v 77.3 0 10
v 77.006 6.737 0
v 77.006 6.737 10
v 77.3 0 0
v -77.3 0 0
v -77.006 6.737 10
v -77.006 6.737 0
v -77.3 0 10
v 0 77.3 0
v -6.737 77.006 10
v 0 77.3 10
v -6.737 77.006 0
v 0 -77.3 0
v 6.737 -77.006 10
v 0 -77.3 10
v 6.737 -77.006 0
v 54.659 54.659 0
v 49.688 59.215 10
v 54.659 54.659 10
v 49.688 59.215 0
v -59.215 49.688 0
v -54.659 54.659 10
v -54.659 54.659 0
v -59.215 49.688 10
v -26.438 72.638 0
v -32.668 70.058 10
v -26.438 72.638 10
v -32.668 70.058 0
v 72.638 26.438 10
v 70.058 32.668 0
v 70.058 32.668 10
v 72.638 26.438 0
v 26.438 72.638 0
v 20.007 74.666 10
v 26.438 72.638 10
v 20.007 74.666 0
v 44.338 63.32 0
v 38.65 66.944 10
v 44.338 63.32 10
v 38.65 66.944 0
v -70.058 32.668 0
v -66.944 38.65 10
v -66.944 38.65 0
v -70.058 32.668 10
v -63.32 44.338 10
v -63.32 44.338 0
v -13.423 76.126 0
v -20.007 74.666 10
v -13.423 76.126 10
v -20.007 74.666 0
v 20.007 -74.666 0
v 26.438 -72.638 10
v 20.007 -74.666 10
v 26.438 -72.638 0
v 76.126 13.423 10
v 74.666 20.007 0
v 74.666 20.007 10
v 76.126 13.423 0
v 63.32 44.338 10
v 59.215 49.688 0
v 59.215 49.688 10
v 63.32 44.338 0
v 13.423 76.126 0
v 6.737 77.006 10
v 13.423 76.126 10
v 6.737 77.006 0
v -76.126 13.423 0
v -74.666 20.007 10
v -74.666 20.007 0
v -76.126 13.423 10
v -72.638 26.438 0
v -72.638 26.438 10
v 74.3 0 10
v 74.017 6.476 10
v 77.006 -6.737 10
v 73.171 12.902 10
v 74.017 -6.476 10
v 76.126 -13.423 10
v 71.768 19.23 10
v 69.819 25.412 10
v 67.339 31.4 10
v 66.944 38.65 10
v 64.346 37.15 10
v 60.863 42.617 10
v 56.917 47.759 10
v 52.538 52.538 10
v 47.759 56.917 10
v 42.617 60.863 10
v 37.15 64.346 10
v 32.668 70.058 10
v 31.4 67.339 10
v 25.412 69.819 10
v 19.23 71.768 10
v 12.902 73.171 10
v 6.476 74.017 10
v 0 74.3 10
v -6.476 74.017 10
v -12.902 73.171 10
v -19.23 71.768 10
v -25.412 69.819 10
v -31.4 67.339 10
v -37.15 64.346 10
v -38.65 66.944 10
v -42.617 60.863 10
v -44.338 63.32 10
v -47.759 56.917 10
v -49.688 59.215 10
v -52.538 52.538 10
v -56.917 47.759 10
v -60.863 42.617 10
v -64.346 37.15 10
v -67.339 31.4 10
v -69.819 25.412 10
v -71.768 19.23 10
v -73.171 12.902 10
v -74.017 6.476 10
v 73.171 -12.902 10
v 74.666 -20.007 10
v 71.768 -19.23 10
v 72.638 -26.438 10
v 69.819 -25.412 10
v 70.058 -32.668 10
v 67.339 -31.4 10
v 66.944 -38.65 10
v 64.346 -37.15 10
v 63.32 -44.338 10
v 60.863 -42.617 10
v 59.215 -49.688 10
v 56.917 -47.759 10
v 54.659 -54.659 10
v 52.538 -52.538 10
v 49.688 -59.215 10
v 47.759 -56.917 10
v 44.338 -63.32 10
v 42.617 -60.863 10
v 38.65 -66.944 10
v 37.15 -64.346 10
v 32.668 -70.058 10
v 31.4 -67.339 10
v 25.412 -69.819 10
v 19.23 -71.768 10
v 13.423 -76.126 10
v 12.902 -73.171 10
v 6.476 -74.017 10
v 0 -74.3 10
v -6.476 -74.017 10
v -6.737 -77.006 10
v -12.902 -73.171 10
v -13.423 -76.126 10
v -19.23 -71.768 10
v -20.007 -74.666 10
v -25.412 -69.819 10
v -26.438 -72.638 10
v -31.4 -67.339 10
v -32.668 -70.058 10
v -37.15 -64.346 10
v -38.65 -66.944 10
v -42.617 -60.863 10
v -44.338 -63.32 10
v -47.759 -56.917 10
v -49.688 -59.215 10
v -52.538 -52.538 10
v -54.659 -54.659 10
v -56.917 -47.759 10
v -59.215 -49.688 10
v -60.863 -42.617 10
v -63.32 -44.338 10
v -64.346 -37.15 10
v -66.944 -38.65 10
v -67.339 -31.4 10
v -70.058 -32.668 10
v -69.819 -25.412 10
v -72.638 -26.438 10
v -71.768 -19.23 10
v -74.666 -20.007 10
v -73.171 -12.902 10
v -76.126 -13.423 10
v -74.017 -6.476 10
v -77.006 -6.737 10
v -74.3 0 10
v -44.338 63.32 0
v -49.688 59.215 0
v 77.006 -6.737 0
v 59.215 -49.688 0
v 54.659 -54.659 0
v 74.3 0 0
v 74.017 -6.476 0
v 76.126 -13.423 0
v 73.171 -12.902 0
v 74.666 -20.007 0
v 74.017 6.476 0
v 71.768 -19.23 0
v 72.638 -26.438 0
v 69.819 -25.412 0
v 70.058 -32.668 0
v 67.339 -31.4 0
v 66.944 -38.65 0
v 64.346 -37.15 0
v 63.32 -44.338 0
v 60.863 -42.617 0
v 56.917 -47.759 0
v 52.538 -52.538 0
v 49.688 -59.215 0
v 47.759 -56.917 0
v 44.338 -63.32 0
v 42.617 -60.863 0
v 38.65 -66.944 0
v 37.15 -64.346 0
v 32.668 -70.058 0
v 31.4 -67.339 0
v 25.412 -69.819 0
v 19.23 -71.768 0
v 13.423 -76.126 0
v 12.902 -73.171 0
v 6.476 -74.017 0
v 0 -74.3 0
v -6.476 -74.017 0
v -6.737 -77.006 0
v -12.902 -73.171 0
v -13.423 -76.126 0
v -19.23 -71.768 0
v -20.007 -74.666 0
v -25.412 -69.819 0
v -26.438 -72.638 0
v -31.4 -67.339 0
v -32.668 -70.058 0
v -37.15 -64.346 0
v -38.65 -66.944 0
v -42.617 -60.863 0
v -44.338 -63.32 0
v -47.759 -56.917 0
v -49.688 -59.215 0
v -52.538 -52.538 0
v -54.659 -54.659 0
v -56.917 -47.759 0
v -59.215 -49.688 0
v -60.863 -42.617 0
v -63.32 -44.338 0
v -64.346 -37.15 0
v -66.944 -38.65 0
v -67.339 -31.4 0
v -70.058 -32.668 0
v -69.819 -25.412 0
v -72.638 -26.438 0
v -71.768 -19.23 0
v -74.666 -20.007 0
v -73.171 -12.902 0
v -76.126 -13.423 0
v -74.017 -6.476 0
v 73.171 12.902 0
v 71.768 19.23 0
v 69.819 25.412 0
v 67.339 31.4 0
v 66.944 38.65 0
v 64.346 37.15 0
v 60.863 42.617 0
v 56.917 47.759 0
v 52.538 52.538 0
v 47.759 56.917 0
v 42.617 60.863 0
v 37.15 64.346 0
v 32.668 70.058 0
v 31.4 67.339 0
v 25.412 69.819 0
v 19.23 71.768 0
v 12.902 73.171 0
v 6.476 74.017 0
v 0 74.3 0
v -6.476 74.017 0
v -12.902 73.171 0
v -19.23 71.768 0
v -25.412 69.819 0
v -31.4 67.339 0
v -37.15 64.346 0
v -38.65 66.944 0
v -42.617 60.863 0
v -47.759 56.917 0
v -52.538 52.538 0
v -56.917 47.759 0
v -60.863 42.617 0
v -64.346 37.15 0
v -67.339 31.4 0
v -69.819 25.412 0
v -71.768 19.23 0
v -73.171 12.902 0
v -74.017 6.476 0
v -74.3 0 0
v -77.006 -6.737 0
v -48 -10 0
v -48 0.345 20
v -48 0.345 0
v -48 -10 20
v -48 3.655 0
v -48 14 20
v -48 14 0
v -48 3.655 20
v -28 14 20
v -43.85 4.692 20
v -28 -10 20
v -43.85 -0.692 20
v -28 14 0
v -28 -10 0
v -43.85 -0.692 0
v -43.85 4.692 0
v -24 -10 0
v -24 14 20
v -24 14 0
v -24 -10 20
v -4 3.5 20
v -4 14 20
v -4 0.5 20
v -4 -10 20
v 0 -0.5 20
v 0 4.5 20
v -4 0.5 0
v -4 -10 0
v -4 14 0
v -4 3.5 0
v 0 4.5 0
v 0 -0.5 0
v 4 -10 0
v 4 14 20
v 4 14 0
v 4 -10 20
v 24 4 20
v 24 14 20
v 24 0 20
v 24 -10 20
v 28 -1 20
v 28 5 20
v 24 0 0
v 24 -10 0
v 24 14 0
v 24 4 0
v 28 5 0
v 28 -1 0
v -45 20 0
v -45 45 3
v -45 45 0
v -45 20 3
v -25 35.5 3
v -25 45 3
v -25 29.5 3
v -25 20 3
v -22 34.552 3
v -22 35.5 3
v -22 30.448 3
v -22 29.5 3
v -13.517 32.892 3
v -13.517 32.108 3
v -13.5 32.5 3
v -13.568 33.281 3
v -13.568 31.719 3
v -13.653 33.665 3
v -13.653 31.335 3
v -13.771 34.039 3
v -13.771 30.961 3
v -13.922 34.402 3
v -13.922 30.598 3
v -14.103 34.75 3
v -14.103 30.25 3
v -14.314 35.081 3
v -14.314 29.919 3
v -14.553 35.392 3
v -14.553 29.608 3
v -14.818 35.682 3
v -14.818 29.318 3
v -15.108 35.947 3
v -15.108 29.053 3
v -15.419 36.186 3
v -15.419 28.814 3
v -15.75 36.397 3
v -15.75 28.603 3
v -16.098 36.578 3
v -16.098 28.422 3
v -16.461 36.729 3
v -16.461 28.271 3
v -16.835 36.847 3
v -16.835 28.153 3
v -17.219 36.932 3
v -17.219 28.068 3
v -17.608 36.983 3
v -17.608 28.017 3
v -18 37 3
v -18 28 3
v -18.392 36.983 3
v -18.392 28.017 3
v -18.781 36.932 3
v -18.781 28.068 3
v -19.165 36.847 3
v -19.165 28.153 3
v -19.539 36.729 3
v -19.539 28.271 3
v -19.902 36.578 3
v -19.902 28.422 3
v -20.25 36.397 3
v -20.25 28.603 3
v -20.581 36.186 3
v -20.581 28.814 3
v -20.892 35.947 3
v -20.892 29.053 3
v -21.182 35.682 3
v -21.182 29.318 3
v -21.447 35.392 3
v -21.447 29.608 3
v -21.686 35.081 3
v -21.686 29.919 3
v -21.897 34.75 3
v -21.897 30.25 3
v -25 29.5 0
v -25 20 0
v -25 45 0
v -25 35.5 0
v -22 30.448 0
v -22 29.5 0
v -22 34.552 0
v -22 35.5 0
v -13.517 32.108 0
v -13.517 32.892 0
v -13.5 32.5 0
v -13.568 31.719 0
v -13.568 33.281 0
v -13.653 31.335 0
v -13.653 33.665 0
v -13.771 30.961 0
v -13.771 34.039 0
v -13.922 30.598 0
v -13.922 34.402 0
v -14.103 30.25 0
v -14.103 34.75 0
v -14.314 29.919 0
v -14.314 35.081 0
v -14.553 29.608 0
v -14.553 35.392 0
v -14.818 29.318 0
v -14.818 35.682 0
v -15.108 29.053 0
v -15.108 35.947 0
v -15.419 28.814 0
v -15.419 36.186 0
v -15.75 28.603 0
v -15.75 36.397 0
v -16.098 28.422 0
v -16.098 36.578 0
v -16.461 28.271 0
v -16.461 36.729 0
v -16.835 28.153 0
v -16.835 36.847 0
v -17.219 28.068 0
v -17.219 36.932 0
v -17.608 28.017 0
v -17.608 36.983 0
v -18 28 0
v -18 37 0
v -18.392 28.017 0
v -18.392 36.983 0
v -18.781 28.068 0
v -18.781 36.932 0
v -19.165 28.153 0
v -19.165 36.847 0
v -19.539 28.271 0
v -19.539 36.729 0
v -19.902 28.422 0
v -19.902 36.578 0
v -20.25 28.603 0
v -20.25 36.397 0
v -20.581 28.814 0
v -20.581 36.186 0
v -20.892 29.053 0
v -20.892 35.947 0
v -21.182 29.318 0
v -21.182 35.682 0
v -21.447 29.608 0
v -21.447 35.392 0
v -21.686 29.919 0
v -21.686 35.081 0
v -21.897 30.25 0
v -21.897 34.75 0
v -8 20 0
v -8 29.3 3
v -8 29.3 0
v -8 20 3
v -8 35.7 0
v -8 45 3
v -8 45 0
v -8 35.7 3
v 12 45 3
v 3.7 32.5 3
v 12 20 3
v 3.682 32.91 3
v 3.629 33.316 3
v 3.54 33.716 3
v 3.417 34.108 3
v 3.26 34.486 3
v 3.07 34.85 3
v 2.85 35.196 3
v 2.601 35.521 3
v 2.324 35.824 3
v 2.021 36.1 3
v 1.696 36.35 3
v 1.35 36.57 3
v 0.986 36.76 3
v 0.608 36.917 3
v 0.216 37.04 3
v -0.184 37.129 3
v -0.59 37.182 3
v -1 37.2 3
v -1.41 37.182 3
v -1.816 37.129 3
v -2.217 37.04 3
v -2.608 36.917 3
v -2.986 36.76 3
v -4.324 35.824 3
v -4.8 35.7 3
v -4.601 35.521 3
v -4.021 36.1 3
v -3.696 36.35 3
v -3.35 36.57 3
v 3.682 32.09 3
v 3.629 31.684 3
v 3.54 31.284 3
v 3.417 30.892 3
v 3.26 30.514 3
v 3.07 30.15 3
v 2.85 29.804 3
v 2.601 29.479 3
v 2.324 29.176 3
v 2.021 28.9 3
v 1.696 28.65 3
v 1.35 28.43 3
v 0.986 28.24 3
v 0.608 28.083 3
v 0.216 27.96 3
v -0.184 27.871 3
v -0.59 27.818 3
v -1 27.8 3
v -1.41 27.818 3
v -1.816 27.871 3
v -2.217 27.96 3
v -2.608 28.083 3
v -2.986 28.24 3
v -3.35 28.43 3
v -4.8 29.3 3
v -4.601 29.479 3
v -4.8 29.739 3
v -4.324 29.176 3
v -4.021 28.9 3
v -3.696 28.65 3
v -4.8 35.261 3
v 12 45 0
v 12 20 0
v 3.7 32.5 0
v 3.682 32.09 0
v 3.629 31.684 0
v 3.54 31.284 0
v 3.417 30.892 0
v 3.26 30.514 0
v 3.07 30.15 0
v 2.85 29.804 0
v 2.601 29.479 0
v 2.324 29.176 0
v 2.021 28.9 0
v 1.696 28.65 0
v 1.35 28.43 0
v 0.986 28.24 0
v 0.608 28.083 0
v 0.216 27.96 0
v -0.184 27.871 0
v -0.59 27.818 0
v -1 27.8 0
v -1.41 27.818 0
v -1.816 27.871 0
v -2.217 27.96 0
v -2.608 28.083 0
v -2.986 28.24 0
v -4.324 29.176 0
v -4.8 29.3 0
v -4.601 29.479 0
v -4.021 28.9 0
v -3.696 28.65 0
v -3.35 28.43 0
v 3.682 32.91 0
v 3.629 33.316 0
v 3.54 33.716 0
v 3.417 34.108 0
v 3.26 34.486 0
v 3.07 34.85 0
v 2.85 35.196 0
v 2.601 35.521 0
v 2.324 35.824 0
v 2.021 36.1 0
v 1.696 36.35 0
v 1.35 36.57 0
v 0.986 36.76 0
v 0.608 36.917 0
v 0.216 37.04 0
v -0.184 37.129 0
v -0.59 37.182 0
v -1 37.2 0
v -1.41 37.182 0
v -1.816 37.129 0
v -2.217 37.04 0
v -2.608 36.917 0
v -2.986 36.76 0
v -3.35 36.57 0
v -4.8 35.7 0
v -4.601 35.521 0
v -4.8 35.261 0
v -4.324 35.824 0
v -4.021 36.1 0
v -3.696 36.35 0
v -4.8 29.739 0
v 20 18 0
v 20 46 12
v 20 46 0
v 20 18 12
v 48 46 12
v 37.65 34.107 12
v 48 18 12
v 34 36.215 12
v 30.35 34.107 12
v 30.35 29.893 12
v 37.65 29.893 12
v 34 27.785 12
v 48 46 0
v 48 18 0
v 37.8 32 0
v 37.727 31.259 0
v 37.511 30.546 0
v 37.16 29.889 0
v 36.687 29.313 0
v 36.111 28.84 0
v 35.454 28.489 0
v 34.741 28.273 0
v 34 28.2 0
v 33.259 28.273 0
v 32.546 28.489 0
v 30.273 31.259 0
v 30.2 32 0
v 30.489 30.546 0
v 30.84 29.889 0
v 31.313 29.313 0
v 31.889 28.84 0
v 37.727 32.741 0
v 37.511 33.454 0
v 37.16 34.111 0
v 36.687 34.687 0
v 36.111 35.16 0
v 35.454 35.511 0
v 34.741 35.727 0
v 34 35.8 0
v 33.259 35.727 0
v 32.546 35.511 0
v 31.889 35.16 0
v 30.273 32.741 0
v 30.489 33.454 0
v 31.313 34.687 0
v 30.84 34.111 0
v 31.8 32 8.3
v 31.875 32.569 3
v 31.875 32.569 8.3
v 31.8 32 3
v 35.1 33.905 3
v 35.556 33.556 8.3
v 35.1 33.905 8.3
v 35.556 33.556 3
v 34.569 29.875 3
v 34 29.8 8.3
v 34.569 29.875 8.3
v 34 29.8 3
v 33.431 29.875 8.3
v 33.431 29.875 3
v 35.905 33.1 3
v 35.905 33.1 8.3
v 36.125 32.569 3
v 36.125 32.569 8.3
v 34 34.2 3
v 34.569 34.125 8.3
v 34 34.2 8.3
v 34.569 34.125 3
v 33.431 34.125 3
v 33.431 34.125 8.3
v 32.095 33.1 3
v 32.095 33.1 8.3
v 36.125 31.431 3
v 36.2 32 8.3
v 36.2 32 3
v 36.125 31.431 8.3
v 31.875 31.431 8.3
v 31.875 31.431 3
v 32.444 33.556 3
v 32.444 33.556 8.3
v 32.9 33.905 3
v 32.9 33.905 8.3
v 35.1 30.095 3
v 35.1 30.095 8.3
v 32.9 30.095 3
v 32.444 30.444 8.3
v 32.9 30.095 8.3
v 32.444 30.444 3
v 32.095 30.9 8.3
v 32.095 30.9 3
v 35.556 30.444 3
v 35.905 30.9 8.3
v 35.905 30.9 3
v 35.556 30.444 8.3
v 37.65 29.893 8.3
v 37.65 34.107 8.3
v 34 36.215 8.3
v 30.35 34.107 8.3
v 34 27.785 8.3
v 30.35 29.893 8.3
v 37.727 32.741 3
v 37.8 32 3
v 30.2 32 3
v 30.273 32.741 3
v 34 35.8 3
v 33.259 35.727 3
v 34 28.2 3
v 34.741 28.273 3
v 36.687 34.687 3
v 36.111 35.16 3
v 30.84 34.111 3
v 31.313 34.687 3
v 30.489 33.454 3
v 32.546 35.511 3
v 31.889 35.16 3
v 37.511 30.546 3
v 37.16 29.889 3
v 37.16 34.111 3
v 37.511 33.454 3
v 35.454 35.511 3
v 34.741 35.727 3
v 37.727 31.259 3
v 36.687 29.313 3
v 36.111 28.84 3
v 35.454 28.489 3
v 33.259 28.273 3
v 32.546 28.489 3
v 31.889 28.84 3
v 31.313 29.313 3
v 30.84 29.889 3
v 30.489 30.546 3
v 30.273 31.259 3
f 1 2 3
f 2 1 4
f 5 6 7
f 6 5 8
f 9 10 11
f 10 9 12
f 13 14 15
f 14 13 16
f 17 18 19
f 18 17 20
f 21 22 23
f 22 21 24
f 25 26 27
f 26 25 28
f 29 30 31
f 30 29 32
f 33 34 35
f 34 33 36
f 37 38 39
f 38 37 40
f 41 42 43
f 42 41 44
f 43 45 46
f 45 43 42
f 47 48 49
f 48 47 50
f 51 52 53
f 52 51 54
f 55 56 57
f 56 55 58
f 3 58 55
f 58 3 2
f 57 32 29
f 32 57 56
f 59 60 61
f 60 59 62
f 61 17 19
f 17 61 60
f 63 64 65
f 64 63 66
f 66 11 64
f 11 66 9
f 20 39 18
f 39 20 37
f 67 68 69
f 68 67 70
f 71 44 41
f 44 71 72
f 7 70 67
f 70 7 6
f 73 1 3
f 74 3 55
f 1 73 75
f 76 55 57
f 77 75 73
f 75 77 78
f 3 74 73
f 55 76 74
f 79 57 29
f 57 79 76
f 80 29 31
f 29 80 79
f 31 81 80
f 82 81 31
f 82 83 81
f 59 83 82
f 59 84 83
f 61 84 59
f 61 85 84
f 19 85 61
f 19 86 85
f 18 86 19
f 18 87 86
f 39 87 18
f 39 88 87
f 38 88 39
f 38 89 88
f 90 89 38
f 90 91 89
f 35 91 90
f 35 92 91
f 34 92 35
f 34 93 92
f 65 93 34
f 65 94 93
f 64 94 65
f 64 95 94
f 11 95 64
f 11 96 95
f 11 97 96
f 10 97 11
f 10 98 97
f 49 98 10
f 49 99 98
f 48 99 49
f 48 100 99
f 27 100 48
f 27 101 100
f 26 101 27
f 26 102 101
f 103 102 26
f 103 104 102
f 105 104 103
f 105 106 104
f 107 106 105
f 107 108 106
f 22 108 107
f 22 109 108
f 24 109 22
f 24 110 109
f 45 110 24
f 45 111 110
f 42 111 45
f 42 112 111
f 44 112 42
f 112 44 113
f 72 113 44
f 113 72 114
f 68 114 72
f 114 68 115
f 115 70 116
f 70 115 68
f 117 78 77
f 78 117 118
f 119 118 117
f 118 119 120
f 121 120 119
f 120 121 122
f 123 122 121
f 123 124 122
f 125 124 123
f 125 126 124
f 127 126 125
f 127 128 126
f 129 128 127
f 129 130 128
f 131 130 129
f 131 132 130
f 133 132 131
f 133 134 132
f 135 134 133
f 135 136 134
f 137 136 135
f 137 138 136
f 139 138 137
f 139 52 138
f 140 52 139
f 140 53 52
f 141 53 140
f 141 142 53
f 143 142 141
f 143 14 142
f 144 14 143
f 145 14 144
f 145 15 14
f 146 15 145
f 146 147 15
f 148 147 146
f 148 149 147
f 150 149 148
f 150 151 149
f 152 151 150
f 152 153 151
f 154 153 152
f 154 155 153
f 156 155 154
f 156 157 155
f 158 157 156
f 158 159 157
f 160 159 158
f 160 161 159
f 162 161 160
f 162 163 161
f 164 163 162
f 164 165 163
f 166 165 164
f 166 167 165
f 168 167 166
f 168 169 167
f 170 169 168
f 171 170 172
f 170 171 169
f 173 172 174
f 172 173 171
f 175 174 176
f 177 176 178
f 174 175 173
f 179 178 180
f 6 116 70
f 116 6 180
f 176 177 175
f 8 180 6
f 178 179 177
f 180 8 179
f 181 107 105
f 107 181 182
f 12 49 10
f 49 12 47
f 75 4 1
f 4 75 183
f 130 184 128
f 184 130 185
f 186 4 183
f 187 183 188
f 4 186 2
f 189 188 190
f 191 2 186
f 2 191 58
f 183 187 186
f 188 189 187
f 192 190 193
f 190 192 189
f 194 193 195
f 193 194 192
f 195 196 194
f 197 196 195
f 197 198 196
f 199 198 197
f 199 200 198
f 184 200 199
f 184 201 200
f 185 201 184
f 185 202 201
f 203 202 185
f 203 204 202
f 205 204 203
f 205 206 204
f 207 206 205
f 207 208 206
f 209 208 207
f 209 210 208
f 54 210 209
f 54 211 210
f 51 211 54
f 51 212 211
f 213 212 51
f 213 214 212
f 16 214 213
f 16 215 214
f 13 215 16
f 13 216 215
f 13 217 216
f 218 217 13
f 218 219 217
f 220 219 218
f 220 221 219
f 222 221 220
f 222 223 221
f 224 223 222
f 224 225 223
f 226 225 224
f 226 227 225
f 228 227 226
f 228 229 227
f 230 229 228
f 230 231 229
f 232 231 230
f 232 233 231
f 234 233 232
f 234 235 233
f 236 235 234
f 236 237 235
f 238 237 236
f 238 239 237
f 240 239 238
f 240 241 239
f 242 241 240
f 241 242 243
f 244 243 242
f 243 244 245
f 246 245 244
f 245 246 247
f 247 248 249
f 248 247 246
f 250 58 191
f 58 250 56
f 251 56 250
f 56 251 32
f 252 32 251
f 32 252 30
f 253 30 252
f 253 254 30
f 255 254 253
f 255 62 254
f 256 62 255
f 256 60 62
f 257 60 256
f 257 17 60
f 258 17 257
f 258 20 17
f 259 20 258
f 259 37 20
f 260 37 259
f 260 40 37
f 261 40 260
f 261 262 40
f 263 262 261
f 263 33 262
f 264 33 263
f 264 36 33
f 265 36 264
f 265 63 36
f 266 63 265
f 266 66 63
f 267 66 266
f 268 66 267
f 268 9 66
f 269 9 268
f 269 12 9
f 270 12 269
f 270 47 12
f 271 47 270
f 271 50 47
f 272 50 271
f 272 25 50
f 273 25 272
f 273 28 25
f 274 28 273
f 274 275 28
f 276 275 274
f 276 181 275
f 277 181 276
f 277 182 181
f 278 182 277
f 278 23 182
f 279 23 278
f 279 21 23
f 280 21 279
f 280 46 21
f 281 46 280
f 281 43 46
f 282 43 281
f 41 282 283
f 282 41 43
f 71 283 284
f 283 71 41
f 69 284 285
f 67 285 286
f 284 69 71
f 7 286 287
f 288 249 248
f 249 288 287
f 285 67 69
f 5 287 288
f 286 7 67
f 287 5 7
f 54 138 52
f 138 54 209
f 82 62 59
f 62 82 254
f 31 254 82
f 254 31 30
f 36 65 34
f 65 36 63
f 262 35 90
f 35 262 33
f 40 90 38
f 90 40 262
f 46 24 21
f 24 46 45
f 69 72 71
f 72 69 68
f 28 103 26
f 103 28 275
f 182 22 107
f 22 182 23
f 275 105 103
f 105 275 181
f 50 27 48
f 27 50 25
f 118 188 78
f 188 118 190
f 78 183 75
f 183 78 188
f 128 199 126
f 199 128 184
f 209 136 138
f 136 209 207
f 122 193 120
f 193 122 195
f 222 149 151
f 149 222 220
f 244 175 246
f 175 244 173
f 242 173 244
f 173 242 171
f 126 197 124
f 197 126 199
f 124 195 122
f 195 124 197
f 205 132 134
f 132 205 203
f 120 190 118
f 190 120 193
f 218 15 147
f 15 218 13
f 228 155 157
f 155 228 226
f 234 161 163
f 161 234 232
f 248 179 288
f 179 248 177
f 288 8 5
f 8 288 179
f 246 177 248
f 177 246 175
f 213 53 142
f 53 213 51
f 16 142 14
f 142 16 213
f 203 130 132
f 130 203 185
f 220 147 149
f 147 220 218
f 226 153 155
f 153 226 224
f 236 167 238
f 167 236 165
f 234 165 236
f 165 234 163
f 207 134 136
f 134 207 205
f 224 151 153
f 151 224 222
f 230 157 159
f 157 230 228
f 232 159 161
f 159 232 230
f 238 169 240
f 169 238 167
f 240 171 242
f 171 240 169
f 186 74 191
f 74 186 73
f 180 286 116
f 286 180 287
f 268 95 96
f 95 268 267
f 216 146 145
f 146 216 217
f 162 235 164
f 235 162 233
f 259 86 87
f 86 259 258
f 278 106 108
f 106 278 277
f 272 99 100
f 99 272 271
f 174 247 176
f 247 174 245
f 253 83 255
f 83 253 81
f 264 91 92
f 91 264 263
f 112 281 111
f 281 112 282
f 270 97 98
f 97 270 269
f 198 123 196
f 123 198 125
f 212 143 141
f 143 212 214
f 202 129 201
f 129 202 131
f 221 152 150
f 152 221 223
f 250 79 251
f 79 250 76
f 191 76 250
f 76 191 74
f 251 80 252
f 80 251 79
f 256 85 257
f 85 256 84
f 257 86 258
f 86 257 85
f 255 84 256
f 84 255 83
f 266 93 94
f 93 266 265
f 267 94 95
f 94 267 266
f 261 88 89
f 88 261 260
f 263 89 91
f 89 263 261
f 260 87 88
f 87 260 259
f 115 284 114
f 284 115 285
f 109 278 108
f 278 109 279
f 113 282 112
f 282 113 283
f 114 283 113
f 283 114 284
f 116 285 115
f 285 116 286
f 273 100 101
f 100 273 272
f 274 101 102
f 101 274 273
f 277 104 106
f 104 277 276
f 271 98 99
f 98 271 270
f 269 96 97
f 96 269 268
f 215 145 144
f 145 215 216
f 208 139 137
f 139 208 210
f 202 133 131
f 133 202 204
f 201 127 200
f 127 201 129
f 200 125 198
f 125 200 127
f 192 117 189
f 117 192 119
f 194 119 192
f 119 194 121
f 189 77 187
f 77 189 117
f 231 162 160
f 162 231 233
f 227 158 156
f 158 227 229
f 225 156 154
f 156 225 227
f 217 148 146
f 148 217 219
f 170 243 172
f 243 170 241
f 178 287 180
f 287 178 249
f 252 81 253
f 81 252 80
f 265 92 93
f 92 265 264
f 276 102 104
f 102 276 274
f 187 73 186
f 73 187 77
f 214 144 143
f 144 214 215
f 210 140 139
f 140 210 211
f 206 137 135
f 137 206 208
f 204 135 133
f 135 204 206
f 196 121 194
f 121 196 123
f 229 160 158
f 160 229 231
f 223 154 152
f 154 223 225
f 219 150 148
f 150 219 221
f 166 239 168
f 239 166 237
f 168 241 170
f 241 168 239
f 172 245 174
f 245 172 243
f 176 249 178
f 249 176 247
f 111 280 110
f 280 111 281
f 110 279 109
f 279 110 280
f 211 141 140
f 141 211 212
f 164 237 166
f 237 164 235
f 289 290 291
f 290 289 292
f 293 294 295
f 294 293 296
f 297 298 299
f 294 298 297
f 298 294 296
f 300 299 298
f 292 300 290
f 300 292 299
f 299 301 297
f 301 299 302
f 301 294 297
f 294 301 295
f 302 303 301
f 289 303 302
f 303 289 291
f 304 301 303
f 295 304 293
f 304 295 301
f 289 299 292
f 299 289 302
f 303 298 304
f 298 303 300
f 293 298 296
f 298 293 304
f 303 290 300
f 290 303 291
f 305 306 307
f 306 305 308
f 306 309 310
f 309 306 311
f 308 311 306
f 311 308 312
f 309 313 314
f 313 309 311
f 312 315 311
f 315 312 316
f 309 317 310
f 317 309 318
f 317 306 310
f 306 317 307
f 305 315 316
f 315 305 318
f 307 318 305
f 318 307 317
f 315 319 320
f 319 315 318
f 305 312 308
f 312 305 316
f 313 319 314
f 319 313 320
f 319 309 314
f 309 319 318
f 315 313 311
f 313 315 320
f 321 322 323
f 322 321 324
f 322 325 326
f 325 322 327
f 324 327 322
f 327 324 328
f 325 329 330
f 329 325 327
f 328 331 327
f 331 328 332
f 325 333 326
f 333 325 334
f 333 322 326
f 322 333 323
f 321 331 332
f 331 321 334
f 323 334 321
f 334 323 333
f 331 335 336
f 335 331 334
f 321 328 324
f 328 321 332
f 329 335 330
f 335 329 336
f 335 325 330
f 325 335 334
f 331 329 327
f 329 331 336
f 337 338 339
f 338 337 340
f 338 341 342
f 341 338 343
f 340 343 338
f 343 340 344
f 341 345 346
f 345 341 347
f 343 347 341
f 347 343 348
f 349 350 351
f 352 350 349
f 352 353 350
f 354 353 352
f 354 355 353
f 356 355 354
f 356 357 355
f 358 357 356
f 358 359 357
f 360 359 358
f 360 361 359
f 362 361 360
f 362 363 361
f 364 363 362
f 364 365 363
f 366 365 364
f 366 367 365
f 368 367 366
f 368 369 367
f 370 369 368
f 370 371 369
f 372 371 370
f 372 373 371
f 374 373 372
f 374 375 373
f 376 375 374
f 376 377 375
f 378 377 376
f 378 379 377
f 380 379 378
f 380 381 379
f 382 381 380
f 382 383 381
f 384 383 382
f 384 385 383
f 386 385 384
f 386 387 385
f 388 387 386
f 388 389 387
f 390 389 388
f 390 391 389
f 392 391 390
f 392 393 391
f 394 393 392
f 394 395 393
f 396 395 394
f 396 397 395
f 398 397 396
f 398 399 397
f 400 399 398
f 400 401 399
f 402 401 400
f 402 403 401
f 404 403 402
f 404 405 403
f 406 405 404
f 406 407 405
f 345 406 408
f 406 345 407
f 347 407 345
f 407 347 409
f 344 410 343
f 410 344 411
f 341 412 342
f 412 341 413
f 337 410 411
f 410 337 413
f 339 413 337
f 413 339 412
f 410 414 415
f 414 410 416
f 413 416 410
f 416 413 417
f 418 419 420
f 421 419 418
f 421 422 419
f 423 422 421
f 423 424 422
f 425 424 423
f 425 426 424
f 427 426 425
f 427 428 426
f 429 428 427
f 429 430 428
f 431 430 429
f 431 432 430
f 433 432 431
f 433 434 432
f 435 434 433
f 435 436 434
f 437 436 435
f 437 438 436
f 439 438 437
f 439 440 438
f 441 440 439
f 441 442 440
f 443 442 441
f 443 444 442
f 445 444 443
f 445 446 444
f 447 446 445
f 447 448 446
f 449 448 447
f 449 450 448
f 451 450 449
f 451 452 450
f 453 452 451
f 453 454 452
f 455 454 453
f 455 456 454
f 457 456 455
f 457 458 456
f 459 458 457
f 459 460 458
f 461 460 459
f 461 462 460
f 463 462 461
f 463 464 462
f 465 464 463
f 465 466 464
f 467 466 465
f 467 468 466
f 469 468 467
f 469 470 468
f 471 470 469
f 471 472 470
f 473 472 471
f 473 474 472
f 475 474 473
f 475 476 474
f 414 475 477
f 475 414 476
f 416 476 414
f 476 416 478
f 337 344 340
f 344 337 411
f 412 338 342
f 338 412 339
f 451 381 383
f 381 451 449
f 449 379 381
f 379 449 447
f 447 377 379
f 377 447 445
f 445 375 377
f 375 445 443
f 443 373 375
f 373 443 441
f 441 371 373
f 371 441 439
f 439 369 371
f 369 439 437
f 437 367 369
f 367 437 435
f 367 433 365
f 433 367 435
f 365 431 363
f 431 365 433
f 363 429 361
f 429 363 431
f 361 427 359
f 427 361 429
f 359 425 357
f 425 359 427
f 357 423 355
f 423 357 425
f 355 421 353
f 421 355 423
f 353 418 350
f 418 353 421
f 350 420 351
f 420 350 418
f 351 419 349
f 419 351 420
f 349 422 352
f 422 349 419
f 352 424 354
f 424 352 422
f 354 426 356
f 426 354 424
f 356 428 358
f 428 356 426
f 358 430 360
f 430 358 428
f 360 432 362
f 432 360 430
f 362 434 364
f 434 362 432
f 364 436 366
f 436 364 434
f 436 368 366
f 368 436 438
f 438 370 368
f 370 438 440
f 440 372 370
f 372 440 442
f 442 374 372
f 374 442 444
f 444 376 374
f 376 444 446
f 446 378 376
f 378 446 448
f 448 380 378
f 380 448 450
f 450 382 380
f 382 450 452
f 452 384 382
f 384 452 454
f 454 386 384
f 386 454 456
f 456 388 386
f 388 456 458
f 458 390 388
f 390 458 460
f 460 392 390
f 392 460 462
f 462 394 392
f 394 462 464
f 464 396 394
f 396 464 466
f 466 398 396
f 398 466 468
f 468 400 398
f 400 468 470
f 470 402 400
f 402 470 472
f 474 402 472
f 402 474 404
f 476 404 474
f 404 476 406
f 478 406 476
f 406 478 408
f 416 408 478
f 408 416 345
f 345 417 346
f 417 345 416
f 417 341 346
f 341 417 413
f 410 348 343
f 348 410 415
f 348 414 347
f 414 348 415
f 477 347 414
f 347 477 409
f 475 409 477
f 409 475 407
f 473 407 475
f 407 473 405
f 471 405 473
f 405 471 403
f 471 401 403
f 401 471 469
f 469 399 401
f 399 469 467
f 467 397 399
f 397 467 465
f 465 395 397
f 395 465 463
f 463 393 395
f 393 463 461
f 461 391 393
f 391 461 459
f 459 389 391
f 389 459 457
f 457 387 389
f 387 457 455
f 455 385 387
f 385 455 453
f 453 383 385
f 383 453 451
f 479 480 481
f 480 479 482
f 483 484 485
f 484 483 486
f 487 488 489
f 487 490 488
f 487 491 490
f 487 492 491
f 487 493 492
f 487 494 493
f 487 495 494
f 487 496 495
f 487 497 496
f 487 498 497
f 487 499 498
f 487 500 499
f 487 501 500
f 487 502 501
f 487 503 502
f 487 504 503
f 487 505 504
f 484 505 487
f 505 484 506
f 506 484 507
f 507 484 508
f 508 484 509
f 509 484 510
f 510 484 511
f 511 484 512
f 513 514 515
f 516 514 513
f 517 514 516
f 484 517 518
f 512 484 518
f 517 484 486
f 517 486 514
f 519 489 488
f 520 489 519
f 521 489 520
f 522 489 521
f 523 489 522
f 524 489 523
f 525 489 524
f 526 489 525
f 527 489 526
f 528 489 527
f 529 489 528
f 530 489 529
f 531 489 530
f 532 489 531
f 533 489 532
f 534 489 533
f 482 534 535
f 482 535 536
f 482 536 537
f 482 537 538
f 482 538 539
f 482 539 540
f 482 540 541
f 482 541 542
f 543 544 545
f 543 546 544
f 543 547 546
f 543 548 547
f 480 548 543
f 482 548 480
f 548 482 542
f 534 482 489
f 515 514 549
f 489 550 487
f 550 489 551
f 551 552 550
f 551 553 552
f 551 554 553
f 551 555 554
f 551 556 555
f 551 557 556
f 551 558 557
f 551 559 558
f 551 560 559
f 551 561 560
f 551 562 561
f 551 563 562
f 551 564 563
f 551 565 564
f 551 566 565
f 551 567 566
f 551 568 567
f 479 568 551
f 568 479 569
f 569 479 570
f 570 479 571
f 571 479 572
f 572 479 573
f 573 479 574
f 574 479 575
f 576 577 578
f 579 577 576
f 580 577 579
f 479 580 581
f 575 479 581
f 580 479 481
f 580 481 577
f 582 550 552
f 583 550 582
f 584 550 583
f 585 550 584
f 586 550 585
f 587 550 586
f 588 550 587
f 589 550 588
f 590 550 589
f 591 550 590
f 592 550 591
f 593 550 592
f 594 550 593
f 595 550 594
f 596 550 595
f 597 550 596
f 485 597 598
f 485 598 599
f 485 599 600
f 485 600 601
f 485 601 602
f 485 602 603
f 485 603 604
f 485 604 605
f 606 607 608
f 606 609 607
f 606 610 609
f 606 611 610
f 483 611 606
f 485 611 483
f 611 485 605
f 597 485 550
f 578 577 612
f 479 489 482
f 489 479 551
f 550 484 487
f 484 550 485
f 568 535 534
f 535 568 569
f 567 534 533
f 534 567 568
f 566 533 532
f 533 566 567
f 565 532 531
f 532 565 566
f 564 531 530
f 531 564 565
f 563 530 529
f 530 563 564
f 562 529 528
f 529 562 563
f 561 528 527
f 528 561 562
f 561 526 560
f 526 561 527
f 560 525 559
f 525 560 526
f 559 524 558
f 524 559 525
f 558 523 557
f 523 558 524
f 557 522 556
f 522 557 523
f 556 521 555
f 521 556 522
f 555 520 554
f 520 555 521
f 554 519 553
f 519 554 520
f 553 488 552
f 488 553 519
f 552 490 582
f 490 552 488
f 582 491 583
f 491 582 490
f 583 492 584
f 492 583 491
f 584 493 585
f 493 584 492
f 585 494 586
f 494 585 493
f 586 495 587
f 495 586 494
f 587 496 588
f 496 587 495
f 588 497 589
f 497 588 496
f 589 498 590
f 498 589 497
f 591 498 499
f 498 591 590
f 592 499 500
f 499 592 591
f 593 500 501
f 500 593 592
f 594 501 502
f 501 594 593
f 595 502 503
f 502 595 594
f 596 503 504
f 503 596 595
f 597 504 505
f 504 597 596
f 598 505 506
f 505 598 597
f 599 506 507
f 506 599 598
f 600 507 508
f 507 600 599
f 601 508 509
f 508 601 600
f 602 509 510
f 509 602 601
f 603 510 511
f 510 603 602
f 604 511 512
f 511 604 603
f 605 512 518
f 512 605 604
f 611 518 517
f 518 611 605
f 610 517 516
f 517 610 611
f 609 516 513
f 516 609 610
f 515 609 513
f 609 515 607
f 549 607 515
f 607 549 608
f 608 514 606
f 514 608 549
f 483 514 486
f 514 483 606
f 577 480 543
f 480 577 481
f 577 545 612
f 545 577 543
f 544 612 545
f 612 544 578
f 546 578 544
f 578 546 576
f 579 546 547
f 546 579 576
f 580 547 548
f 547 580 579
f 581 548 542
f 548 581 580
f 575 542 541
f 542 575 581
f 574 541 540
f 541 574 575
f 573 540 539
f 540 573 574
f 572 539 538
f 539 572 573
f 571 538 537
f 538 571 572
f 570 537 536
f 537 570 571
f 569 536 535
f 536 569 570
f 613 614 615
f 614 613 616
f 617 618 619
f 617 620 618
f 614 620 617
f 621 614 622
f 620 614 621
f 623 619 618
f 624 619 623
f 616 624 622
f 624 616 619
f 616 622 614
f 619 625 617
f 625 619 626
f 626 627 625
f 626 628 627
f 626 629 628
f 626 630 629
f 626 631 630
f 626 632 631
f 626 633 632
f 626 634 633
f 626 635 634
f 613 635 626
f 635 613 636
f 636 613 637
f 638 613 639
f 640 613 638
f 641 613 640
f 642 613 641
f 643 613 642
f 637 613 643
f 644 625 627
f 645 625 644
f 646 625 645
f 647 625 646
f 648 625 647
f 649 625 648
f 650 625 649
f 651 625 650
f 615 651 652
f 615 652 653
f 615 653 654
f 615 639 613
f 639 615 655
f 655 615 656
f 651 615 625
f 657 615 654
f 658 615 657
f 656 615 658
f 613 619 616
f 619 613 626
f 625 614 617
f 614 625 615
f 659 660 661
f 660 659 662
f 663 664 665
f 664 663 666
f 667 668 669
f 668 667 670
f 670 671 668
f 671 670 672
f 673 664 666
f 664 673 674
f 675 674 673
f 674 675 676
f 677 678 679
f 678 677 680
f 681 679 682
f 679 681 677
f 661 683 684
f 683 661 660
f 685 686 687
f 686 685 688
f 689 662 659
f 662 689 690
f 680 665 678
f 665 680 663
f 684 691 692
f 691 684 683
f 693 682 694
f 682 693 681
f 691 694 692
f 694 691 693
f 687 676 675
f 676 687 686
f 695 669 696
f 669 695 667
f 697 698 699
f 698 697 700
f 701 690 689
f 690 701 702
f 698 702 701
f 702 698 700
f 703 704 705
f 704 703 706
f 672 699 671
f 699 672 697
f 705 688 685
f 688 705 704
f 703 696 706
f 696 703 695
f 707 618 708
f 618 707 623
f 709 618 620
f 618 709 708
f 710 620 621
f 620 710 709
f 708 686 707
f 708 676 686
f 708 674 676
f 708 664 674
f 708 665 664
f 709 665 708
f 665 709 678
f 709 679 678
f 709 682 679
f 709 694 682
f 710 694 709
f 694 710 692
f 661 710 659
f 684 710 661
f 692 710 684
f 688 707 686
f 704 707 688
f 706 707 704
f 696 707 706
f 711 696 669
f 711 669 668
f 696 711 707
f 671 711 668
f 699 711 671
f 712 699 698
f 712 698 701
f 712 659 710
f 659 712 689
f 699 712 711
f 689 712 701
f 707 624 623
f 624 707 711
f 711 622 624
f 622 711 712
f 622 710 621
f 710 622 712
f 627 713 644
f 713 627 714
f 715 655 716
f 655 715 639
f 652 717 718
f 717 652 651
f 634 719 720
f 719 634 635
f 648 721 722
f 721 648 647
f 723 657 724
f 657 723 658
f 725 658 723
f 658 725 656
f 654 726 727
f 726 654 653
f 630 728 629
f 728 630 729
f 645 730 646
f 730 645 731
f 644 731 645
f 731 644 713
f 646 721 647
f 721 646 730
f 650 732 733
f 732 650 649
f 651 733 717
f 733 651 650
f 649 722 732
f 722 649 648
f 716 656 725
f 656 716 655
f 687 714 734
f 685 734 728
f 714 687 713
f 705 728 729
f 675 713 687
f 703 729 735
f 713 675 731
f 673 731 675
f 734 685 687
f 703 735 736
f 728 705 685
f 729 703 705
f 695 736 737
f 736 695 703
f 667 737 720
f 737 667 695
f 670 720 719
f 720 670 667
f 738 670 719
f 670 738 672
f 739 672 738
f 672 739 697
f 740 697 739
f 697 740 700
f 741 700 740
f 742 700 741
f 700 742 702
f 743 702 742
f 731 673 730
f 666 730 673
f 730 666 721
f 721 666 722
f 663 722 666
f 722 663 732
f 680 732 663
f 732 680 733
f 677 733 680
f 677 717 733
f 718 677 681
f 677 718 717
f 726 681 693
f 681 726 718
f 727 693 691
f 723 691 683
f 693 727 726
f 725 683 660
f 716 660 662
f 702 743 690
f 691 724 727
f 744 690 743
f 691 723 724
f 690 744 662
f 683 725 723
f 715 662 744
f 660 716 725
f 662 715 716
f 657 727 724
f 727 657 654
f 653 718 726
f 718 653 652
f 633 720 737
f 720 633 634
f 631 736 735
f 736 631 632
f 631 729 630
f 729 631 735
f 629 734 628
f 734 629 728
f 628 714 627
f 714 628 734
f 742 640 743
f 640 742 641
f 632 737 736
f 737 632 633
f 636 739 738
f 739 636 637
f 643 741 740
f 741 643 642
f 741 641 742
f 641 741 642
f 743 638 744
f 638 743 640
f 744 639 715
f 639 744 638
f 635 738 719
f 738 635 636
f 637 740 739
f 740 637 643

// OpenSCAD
// P00 — Test coupons + fan gauge ring G1. PRINT FIRST. Flat on the bed. PLA.
// Needs lfh_v1_reference.scad in the parent folder (LFH).
include <../lfh_v1_reference.scad>
part = "coupons";
pose = "print";
